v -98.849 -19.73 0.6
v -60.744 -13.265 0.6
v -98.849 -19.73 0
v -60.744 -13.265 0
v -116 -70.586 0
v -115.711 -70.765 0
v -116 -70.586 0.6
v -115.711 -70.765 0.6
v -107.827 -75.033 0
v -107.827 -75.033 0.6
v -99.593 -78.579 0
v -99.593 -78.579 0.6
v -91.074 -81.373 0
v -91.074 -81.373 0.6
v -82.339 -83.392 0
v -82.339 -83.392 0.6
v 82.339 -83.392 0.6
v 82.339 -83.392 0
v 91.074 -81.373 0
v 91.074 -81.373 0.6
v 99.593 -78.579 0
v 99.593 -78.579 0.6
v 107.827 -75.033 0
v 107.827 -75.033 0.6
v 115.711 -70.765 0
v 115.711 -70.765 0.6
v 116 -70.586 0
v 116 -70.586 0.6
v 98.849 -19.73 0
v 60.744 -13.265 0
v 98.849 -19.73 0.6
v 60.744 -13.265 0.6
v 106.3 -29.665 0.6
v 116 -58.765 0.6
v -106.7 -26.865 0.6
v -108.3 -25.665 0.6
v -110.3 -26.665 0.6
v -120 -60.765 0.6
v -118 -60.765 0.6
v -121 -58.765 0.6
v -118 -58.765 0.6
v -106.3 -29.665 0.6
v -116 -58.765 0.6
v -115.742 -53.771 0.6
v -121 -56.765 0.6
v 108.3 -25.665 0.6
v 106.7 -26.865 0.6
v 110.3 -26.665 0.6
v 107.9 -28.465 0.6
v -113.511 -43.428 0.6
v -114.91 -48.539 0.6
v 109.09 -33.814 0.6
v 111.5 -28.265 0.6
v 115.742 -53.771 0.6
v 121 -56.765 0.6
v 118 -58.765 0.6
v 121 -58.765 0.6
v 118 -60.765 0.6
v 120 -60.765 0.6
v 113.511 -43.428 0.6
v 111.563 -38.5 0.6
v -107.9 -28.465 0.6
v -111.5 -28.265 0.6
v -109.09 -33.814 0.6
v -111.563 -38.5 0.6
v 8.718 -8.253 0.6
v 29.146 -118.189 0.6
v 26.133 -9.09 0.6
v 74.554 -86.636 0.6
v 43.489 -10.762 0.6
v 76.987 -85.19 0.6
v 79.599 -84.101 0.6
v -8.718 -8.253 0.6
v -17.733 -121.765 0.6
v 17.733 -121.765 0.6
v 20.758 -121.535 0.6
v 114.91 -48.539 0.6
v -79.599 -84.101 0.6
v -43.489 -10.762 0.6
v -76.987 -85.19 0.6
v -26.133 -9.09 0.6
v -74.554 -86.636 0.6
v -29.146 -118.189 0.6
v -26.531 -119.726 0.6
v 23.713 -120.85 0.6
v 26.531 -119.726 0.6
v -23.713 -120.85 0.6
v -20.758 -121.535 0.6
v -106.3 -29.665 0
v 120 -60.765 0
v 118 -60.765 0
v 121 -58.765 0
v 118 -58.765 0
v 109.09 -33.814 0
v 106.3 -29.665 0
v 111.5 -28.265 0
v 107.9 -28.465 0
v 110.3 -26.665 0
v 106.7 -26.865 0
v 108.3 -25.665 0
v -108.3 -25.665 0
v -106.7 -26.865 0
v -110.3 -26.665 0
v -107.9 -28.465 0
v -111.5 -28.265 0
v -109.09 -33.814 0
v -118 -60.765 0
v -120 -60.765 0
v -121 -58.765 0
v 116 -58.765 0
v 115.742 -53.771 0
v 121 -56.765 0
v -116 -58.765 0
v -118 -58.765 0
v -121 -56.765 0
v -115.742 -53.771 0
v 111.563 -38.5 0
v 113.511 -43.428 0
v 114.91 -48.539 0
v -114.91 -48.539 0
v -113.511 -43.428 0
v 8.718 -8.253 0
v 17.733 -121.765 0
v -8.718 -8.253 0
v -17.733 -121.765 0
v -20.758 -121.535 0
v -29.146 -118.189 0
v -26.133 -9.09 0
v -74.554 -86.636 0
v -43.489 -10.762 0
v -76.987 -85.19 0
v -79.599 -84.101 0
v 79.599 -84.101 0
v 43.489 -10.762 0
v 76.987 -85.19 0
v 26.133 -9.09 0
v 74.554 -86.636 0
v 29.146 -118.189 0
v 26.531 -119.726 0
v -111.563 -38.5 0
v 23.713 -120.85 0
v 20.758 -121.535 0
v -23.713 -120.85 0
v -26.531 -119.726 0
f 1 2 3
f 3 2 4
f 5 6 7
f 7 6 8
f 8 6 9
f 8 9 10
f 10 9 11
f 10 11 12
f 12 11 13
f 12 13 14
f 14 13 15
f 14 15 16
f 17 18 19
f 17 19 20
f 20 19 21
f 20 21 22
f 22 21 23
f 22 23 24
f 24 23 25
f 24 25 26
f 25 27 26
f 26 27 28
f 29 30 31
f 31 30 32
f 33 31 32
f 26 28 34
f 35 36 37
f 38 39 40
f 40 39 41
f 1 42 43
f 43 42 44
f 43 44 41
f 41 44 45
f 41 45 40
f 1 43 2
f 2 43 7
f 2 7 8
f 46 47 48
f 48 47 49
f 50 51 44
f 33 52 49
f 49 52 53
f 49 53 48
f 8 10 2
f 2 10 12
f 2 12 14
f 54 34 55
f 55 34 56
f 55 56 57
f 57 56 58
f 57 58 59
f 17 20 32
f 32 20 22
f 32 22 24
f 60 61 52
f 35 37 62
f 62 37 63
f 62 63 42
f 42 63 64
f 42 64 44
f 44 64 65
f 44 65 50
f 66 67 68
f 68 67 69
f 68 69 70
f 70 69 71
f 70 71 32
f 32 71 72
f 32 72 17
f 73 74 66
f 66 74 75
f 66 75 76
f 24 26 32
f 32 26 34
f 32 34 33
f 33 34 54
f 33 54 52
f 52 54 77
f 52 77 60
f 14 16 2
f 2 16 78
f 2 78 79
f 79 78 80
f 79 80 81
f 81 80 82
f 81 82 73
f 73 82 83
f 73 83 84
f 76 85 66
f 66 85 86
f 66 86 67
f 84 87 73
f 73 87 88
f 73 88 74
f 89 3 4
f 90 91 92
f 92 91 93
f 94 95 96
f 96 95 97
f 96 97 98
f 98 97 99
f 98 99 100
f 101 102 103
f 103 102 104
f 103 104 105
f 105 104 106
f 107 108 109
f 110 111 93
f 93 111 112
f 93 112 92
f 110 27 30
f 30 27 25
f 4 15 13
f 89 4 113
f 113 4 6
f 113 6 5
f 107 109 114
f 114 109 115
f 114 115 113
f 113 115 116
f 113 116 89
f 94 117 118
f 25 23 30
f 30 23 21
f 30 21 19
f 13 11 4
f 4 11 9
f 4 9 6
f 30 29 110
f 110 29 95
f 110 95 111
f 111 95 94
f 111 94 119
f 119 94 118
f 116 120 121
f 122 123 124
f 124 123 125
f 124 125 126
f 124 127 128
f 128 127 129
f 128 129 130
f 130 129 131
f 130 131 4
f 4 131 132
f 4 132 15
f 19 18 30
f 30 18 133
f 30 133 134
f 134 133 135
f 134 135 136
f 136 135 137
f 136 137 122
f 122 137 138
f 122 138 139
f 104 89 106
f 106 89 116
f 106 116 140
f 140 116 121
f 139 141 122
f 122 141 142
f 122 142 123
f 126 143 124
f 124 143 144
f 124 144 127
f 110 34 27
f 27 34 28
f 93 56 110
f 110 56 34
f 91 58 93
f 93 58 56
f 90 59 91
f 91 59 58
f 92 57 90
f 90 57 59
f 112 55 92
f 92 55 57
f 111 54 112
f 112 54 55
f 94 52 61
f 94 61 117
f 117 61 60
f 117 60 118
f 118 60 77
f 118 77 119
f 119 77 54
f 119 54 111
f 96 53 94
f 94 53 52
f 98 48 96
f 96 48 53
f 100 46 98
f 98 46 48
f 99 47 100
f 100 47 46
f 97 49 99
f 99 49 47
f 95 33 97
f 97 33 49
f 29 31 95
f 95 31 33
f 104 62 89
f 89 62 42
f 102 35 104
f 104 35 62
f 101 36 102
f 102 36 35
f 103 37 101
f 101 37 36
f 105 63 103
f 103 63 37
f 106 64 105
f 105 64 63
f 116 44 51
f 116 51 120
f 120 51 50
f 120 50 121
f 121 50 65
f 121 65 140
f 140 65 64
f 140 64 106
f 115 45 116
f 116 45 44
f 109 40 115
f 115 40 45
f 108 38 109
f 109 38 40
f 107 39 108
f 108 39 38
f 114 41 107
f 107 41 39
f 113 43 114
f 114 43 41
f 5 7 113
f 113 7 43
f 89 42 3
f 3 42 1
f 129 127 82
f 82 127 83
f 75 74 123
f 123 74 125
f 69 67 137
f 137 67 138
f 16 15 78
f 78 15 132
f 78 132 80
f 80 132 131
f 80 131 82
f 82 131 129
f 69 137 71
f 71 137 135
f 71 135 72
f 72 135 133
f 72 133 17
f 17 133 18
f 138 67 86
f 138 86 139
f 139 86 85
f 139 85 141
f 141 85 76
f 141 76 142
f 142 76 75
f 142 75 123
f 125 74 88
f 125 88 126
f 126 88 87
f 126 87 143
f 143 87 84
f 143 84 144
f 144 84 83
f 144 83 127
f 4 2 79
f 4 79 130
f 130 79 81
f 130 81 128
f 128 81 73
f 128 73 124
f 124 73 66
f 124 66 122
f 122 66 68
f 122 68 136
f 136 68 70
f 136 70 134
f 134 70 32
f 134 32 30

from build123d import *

# Parameters (mm, degrees)
MAIN_SHAPE_DEPTH        = 0.6
TABS_DEPTH              = 154.060061459
TABS_DEPTH_BACK         = 154.060061459
CHIN_GUARD_DEPTH        = 0.6
FILLET1_R               = 20
CUT_EXTRUDE1_DEPTH      = 172.662513141
CUT_EXTRUDE1_DEPTH_BACK = 172.662513141


with BuildPart() as part:
    # Sketch1 → Main Shape (new body)
    with BuildSketch(Plane.XY):
        with BuildLine():
            Line((-24, -91.764766734), (24, -91.764766734))
            Line((24, -91.764766734), (78.266232563, -84.05670244))
            ThreePointArc((78.266232563, -84.05670244), (97.655491519, -79.289252293), (115.711102551, -70.764766734))
            ThreePointArc((115.711102551, -70.764766734), (120.685143325, -65.658407438), (122.5, -58.764766734))
            ThreePointArc((122.5, -58.764766734), (120.227482046, -43.118277124), (113.597722286, -28.764766734))
            ThreePointArc((113.597722286, -28.764766734), (107.811505455, -22.955172168), (100.180351554, -19.955641477))
            Line((100.180351554, -19.955641477), (60.74391922, -13.264766734))
            ThreePointArc((60.74391922, -13.264766734), (50.804108255, -9.246591688), (43.461443341, -1.434367632))
            ThreePointArc((43.461443341, -1.434367632), (36.448172688, 5.805997675), (26.941855461, 9.15842781))
            Line((26.941855461, 9.15842781), (17, 10.235233266))
            Line((17, 10.235233266), (10, 0))
            Line((10, 0), (-10, 0))
            Line((-10, 0), (-17, 10.235233266))
            Line((-17, 10.235233266), (-26.941855461, 9.15842781))
            ThreePointArc((-26.941855461, 9.15842781), (-36.448172688, 5.805997675), (-43.461443341, -1.434367632))
            ThreePointArc((-43.461443341, -1.434367632), (-50.804108255, -9.246591688), (-60.74391922, -13.264766734))
            Line((-60.74391922, -13.264766734), (-100.180351554, -19.955641477))
            ThreePointArc((-100.180351554, -19.955641477), (-107.811505455, -22.955172168), (-113.597722286, -28.764766734))
            ThreePointArc((-113.597722286, -28.764766734), (-120.227482046, -43.118277124), (-122.5, -58.764766734))
            ThreePointArc((-122.5, -58.764766734), (-120.685143325, -65.658407438), (-115.711102551, -70.764766734))
            ThreePointArc((-115.711102551, -70.764766734), (-97.655491519, -79.289252293), (-78.266232563, -84.05670244))
            Line((-78.266232563, -84.05670244), (-24, -91.764766734))
        make_face()
    extrude(amount=MAIN_SHAPE_DEPTH)

    # Sketch2 → Tabs (cut, two sides: drawn at the far end of the back side and taken through both)
    with BuildSketch(Plane.XY.offset(0.6).offset(-TABS_DEPTH_BACK)):
        with BuildLine():
            Line((-121, -58.764766734), (-121, -56.764766734))
            Line((-121, -56.764766734), (-115.742268041, -53.771413729))
            ThreePointArc((-115.742268041, -53.771413729), (-113.511139955, -43.427720083), (-109.089826236, -33.814088314))
            Line((-109.089826236, -33.814088314), (-111.5, -28.264766734))
            Line((-111.5, -28.264766734), (-110.3, -26.664766734))
            Line((-110.3, -26.664766734), (-108.3, -25.664766734))
            Line((-108.3, -25.664766734), (-106.7, -26.864766734))
            Line((-106.7, -26.864766734), (-107.9, -28.464766734))
            Line((-107.9, -28.464766734), (-106.3, -29.664766734))
            Line((-106.3, -29.664766734), (-98.84870892, -19.729711961))
            Line((-98.84870892, -19.729711961), (-100.180351554, -19.955641477))
            ThreePointArc((-100.180351554, -19.955641477), (-107.811505455, -22.955172168), (-113.597722286, -28.764766734))
            ThreePointArc((-113.597722286, -28.764766734), (-120.227482046, -43.118277124), (-122.5, -58.764766734))
            ThreePointArc((-122.5, -58.764766734), (-120.767844146, -65.510135516), (-116, -70.586357152))
            Line((-116, -70.586357152), (-116, -58.764766734))
            Line((-116, -58.764766734), (-118, -58.764766734))
            Line((-118, -58.764766734), (-118, -60.764766734))
            Line((-118, -60.764766734), (-120, -60.764766734))
            Line((-120, -60.764766734), (-121, -58.764766734))
        make_face()
        with BuildLine():
            Line((110.3, -26.664766734), (111.5, -28.264766734))
            Line((111.5, -28.264766734), (109.089826236, -33.814088314))
            ThreePointArc((109.089826236, -33.814088314), (113.511139955, -43.427720083), (115.742268041, -53.771413729))
            Line((115.742268041, -53.771413729), (121, -56.764766734))
            Line((121, -56.764766734), (121, -58.764766734))
            Line((121, -58.764766734), (120, -60.764766734))
            Line((120, -60.764766734), (118, -60.764766734))
            Line((118, -60.764766734), (118, -58.764766734))
            Line((118, -58.764766734), (116, -58.764766734))
            Line((116, -58.764766734), (116, -70.586357152))
            ThreePointArc((116, -70.586357152), (120.767844146, -65.510135516), (122.5, -58.764766734))
            ThreePointArc((122.5, -58.764766734), (120.227482046, -43.118277124), (113.597722286, -28.764766734))
            ThreePointArc((113.597722286, -28.764766734), (107.811505455, -22.955172168), (100.180351554, -19.955641477))
            Line((100.180351554, -19.955641477), (98.84870892, -19.729711961))
            Line((98.84870892, -19.729711961), (106.3, -29.664766734))
            Line((106.3, -29.664766734), (107.9, -28.464766734))
            Line((107.9, -28.464766734), (106.7, -26.864766734))
            Line((106.7, -26.864766734), (108.3, -25.664766734))
            Line((108.3, -25.664766734), (110.3, -26.664766734))
        make_face()
    extrude(amount=TABS_DEPTH + TABS_DEPTH_BACK, mode=Mode.SUBTRACT)

    # Sketch5 → Chin guard (add)
    with BuildSketch(Plane.XY.offset(0.6)):
        Polygon((-78.266232563, -84.05670244), (-24, -121.764766734), (24, -121.764766734), (78.266232563, -84.05670244), (24, -91.764766734), (-24, -91.764766734), align=None)
    extrude(amount=-CHIN_GUARD_DEPTH)

    # Fillet1
    fillet1_edges = [part.edges().sort_by_distance(p)[0] for p in [
        (-24, -121.764766734, 0.3),
        (24, -121.764766734, 0.3),
        (78.266232563, -84.05670244, 0.3),
        (-78.266232563, -84.05670244, 0.3),
    ]]
    fillet(fillet1_edges, radius=FILLET1_R)

    # Sketch6 → Cut-Extrude1 (cut, two sides: drawn at the far end of the back side and taken through both)
    with BuildSketch(Plane.XY.offset(0.6).offset(-CUT_EXTRUDE1_DEPTH_BACK)):
        with BuildLine():
            Line((-60.74391922, -13.264766734), (-60.74391922, 16.735233266))
            Line((-60.74391922, 16.735233266), (60.74391922, 16.735233266))
            Line((60.74391922, 16.735233266), (60.74391922, -13.264766734))
            ThreePointArc((60.74391922, -13.264766734), (0, -8.148349205), (-60.74391922, -13.264766734))
        make_face()
    extrude(amount=CUT_EXTRUDE1_DEPTH + CUT_EXTRUDE1_DEPTH_BACK, mode=Mode.SUBTRACT)


solid = part.part
